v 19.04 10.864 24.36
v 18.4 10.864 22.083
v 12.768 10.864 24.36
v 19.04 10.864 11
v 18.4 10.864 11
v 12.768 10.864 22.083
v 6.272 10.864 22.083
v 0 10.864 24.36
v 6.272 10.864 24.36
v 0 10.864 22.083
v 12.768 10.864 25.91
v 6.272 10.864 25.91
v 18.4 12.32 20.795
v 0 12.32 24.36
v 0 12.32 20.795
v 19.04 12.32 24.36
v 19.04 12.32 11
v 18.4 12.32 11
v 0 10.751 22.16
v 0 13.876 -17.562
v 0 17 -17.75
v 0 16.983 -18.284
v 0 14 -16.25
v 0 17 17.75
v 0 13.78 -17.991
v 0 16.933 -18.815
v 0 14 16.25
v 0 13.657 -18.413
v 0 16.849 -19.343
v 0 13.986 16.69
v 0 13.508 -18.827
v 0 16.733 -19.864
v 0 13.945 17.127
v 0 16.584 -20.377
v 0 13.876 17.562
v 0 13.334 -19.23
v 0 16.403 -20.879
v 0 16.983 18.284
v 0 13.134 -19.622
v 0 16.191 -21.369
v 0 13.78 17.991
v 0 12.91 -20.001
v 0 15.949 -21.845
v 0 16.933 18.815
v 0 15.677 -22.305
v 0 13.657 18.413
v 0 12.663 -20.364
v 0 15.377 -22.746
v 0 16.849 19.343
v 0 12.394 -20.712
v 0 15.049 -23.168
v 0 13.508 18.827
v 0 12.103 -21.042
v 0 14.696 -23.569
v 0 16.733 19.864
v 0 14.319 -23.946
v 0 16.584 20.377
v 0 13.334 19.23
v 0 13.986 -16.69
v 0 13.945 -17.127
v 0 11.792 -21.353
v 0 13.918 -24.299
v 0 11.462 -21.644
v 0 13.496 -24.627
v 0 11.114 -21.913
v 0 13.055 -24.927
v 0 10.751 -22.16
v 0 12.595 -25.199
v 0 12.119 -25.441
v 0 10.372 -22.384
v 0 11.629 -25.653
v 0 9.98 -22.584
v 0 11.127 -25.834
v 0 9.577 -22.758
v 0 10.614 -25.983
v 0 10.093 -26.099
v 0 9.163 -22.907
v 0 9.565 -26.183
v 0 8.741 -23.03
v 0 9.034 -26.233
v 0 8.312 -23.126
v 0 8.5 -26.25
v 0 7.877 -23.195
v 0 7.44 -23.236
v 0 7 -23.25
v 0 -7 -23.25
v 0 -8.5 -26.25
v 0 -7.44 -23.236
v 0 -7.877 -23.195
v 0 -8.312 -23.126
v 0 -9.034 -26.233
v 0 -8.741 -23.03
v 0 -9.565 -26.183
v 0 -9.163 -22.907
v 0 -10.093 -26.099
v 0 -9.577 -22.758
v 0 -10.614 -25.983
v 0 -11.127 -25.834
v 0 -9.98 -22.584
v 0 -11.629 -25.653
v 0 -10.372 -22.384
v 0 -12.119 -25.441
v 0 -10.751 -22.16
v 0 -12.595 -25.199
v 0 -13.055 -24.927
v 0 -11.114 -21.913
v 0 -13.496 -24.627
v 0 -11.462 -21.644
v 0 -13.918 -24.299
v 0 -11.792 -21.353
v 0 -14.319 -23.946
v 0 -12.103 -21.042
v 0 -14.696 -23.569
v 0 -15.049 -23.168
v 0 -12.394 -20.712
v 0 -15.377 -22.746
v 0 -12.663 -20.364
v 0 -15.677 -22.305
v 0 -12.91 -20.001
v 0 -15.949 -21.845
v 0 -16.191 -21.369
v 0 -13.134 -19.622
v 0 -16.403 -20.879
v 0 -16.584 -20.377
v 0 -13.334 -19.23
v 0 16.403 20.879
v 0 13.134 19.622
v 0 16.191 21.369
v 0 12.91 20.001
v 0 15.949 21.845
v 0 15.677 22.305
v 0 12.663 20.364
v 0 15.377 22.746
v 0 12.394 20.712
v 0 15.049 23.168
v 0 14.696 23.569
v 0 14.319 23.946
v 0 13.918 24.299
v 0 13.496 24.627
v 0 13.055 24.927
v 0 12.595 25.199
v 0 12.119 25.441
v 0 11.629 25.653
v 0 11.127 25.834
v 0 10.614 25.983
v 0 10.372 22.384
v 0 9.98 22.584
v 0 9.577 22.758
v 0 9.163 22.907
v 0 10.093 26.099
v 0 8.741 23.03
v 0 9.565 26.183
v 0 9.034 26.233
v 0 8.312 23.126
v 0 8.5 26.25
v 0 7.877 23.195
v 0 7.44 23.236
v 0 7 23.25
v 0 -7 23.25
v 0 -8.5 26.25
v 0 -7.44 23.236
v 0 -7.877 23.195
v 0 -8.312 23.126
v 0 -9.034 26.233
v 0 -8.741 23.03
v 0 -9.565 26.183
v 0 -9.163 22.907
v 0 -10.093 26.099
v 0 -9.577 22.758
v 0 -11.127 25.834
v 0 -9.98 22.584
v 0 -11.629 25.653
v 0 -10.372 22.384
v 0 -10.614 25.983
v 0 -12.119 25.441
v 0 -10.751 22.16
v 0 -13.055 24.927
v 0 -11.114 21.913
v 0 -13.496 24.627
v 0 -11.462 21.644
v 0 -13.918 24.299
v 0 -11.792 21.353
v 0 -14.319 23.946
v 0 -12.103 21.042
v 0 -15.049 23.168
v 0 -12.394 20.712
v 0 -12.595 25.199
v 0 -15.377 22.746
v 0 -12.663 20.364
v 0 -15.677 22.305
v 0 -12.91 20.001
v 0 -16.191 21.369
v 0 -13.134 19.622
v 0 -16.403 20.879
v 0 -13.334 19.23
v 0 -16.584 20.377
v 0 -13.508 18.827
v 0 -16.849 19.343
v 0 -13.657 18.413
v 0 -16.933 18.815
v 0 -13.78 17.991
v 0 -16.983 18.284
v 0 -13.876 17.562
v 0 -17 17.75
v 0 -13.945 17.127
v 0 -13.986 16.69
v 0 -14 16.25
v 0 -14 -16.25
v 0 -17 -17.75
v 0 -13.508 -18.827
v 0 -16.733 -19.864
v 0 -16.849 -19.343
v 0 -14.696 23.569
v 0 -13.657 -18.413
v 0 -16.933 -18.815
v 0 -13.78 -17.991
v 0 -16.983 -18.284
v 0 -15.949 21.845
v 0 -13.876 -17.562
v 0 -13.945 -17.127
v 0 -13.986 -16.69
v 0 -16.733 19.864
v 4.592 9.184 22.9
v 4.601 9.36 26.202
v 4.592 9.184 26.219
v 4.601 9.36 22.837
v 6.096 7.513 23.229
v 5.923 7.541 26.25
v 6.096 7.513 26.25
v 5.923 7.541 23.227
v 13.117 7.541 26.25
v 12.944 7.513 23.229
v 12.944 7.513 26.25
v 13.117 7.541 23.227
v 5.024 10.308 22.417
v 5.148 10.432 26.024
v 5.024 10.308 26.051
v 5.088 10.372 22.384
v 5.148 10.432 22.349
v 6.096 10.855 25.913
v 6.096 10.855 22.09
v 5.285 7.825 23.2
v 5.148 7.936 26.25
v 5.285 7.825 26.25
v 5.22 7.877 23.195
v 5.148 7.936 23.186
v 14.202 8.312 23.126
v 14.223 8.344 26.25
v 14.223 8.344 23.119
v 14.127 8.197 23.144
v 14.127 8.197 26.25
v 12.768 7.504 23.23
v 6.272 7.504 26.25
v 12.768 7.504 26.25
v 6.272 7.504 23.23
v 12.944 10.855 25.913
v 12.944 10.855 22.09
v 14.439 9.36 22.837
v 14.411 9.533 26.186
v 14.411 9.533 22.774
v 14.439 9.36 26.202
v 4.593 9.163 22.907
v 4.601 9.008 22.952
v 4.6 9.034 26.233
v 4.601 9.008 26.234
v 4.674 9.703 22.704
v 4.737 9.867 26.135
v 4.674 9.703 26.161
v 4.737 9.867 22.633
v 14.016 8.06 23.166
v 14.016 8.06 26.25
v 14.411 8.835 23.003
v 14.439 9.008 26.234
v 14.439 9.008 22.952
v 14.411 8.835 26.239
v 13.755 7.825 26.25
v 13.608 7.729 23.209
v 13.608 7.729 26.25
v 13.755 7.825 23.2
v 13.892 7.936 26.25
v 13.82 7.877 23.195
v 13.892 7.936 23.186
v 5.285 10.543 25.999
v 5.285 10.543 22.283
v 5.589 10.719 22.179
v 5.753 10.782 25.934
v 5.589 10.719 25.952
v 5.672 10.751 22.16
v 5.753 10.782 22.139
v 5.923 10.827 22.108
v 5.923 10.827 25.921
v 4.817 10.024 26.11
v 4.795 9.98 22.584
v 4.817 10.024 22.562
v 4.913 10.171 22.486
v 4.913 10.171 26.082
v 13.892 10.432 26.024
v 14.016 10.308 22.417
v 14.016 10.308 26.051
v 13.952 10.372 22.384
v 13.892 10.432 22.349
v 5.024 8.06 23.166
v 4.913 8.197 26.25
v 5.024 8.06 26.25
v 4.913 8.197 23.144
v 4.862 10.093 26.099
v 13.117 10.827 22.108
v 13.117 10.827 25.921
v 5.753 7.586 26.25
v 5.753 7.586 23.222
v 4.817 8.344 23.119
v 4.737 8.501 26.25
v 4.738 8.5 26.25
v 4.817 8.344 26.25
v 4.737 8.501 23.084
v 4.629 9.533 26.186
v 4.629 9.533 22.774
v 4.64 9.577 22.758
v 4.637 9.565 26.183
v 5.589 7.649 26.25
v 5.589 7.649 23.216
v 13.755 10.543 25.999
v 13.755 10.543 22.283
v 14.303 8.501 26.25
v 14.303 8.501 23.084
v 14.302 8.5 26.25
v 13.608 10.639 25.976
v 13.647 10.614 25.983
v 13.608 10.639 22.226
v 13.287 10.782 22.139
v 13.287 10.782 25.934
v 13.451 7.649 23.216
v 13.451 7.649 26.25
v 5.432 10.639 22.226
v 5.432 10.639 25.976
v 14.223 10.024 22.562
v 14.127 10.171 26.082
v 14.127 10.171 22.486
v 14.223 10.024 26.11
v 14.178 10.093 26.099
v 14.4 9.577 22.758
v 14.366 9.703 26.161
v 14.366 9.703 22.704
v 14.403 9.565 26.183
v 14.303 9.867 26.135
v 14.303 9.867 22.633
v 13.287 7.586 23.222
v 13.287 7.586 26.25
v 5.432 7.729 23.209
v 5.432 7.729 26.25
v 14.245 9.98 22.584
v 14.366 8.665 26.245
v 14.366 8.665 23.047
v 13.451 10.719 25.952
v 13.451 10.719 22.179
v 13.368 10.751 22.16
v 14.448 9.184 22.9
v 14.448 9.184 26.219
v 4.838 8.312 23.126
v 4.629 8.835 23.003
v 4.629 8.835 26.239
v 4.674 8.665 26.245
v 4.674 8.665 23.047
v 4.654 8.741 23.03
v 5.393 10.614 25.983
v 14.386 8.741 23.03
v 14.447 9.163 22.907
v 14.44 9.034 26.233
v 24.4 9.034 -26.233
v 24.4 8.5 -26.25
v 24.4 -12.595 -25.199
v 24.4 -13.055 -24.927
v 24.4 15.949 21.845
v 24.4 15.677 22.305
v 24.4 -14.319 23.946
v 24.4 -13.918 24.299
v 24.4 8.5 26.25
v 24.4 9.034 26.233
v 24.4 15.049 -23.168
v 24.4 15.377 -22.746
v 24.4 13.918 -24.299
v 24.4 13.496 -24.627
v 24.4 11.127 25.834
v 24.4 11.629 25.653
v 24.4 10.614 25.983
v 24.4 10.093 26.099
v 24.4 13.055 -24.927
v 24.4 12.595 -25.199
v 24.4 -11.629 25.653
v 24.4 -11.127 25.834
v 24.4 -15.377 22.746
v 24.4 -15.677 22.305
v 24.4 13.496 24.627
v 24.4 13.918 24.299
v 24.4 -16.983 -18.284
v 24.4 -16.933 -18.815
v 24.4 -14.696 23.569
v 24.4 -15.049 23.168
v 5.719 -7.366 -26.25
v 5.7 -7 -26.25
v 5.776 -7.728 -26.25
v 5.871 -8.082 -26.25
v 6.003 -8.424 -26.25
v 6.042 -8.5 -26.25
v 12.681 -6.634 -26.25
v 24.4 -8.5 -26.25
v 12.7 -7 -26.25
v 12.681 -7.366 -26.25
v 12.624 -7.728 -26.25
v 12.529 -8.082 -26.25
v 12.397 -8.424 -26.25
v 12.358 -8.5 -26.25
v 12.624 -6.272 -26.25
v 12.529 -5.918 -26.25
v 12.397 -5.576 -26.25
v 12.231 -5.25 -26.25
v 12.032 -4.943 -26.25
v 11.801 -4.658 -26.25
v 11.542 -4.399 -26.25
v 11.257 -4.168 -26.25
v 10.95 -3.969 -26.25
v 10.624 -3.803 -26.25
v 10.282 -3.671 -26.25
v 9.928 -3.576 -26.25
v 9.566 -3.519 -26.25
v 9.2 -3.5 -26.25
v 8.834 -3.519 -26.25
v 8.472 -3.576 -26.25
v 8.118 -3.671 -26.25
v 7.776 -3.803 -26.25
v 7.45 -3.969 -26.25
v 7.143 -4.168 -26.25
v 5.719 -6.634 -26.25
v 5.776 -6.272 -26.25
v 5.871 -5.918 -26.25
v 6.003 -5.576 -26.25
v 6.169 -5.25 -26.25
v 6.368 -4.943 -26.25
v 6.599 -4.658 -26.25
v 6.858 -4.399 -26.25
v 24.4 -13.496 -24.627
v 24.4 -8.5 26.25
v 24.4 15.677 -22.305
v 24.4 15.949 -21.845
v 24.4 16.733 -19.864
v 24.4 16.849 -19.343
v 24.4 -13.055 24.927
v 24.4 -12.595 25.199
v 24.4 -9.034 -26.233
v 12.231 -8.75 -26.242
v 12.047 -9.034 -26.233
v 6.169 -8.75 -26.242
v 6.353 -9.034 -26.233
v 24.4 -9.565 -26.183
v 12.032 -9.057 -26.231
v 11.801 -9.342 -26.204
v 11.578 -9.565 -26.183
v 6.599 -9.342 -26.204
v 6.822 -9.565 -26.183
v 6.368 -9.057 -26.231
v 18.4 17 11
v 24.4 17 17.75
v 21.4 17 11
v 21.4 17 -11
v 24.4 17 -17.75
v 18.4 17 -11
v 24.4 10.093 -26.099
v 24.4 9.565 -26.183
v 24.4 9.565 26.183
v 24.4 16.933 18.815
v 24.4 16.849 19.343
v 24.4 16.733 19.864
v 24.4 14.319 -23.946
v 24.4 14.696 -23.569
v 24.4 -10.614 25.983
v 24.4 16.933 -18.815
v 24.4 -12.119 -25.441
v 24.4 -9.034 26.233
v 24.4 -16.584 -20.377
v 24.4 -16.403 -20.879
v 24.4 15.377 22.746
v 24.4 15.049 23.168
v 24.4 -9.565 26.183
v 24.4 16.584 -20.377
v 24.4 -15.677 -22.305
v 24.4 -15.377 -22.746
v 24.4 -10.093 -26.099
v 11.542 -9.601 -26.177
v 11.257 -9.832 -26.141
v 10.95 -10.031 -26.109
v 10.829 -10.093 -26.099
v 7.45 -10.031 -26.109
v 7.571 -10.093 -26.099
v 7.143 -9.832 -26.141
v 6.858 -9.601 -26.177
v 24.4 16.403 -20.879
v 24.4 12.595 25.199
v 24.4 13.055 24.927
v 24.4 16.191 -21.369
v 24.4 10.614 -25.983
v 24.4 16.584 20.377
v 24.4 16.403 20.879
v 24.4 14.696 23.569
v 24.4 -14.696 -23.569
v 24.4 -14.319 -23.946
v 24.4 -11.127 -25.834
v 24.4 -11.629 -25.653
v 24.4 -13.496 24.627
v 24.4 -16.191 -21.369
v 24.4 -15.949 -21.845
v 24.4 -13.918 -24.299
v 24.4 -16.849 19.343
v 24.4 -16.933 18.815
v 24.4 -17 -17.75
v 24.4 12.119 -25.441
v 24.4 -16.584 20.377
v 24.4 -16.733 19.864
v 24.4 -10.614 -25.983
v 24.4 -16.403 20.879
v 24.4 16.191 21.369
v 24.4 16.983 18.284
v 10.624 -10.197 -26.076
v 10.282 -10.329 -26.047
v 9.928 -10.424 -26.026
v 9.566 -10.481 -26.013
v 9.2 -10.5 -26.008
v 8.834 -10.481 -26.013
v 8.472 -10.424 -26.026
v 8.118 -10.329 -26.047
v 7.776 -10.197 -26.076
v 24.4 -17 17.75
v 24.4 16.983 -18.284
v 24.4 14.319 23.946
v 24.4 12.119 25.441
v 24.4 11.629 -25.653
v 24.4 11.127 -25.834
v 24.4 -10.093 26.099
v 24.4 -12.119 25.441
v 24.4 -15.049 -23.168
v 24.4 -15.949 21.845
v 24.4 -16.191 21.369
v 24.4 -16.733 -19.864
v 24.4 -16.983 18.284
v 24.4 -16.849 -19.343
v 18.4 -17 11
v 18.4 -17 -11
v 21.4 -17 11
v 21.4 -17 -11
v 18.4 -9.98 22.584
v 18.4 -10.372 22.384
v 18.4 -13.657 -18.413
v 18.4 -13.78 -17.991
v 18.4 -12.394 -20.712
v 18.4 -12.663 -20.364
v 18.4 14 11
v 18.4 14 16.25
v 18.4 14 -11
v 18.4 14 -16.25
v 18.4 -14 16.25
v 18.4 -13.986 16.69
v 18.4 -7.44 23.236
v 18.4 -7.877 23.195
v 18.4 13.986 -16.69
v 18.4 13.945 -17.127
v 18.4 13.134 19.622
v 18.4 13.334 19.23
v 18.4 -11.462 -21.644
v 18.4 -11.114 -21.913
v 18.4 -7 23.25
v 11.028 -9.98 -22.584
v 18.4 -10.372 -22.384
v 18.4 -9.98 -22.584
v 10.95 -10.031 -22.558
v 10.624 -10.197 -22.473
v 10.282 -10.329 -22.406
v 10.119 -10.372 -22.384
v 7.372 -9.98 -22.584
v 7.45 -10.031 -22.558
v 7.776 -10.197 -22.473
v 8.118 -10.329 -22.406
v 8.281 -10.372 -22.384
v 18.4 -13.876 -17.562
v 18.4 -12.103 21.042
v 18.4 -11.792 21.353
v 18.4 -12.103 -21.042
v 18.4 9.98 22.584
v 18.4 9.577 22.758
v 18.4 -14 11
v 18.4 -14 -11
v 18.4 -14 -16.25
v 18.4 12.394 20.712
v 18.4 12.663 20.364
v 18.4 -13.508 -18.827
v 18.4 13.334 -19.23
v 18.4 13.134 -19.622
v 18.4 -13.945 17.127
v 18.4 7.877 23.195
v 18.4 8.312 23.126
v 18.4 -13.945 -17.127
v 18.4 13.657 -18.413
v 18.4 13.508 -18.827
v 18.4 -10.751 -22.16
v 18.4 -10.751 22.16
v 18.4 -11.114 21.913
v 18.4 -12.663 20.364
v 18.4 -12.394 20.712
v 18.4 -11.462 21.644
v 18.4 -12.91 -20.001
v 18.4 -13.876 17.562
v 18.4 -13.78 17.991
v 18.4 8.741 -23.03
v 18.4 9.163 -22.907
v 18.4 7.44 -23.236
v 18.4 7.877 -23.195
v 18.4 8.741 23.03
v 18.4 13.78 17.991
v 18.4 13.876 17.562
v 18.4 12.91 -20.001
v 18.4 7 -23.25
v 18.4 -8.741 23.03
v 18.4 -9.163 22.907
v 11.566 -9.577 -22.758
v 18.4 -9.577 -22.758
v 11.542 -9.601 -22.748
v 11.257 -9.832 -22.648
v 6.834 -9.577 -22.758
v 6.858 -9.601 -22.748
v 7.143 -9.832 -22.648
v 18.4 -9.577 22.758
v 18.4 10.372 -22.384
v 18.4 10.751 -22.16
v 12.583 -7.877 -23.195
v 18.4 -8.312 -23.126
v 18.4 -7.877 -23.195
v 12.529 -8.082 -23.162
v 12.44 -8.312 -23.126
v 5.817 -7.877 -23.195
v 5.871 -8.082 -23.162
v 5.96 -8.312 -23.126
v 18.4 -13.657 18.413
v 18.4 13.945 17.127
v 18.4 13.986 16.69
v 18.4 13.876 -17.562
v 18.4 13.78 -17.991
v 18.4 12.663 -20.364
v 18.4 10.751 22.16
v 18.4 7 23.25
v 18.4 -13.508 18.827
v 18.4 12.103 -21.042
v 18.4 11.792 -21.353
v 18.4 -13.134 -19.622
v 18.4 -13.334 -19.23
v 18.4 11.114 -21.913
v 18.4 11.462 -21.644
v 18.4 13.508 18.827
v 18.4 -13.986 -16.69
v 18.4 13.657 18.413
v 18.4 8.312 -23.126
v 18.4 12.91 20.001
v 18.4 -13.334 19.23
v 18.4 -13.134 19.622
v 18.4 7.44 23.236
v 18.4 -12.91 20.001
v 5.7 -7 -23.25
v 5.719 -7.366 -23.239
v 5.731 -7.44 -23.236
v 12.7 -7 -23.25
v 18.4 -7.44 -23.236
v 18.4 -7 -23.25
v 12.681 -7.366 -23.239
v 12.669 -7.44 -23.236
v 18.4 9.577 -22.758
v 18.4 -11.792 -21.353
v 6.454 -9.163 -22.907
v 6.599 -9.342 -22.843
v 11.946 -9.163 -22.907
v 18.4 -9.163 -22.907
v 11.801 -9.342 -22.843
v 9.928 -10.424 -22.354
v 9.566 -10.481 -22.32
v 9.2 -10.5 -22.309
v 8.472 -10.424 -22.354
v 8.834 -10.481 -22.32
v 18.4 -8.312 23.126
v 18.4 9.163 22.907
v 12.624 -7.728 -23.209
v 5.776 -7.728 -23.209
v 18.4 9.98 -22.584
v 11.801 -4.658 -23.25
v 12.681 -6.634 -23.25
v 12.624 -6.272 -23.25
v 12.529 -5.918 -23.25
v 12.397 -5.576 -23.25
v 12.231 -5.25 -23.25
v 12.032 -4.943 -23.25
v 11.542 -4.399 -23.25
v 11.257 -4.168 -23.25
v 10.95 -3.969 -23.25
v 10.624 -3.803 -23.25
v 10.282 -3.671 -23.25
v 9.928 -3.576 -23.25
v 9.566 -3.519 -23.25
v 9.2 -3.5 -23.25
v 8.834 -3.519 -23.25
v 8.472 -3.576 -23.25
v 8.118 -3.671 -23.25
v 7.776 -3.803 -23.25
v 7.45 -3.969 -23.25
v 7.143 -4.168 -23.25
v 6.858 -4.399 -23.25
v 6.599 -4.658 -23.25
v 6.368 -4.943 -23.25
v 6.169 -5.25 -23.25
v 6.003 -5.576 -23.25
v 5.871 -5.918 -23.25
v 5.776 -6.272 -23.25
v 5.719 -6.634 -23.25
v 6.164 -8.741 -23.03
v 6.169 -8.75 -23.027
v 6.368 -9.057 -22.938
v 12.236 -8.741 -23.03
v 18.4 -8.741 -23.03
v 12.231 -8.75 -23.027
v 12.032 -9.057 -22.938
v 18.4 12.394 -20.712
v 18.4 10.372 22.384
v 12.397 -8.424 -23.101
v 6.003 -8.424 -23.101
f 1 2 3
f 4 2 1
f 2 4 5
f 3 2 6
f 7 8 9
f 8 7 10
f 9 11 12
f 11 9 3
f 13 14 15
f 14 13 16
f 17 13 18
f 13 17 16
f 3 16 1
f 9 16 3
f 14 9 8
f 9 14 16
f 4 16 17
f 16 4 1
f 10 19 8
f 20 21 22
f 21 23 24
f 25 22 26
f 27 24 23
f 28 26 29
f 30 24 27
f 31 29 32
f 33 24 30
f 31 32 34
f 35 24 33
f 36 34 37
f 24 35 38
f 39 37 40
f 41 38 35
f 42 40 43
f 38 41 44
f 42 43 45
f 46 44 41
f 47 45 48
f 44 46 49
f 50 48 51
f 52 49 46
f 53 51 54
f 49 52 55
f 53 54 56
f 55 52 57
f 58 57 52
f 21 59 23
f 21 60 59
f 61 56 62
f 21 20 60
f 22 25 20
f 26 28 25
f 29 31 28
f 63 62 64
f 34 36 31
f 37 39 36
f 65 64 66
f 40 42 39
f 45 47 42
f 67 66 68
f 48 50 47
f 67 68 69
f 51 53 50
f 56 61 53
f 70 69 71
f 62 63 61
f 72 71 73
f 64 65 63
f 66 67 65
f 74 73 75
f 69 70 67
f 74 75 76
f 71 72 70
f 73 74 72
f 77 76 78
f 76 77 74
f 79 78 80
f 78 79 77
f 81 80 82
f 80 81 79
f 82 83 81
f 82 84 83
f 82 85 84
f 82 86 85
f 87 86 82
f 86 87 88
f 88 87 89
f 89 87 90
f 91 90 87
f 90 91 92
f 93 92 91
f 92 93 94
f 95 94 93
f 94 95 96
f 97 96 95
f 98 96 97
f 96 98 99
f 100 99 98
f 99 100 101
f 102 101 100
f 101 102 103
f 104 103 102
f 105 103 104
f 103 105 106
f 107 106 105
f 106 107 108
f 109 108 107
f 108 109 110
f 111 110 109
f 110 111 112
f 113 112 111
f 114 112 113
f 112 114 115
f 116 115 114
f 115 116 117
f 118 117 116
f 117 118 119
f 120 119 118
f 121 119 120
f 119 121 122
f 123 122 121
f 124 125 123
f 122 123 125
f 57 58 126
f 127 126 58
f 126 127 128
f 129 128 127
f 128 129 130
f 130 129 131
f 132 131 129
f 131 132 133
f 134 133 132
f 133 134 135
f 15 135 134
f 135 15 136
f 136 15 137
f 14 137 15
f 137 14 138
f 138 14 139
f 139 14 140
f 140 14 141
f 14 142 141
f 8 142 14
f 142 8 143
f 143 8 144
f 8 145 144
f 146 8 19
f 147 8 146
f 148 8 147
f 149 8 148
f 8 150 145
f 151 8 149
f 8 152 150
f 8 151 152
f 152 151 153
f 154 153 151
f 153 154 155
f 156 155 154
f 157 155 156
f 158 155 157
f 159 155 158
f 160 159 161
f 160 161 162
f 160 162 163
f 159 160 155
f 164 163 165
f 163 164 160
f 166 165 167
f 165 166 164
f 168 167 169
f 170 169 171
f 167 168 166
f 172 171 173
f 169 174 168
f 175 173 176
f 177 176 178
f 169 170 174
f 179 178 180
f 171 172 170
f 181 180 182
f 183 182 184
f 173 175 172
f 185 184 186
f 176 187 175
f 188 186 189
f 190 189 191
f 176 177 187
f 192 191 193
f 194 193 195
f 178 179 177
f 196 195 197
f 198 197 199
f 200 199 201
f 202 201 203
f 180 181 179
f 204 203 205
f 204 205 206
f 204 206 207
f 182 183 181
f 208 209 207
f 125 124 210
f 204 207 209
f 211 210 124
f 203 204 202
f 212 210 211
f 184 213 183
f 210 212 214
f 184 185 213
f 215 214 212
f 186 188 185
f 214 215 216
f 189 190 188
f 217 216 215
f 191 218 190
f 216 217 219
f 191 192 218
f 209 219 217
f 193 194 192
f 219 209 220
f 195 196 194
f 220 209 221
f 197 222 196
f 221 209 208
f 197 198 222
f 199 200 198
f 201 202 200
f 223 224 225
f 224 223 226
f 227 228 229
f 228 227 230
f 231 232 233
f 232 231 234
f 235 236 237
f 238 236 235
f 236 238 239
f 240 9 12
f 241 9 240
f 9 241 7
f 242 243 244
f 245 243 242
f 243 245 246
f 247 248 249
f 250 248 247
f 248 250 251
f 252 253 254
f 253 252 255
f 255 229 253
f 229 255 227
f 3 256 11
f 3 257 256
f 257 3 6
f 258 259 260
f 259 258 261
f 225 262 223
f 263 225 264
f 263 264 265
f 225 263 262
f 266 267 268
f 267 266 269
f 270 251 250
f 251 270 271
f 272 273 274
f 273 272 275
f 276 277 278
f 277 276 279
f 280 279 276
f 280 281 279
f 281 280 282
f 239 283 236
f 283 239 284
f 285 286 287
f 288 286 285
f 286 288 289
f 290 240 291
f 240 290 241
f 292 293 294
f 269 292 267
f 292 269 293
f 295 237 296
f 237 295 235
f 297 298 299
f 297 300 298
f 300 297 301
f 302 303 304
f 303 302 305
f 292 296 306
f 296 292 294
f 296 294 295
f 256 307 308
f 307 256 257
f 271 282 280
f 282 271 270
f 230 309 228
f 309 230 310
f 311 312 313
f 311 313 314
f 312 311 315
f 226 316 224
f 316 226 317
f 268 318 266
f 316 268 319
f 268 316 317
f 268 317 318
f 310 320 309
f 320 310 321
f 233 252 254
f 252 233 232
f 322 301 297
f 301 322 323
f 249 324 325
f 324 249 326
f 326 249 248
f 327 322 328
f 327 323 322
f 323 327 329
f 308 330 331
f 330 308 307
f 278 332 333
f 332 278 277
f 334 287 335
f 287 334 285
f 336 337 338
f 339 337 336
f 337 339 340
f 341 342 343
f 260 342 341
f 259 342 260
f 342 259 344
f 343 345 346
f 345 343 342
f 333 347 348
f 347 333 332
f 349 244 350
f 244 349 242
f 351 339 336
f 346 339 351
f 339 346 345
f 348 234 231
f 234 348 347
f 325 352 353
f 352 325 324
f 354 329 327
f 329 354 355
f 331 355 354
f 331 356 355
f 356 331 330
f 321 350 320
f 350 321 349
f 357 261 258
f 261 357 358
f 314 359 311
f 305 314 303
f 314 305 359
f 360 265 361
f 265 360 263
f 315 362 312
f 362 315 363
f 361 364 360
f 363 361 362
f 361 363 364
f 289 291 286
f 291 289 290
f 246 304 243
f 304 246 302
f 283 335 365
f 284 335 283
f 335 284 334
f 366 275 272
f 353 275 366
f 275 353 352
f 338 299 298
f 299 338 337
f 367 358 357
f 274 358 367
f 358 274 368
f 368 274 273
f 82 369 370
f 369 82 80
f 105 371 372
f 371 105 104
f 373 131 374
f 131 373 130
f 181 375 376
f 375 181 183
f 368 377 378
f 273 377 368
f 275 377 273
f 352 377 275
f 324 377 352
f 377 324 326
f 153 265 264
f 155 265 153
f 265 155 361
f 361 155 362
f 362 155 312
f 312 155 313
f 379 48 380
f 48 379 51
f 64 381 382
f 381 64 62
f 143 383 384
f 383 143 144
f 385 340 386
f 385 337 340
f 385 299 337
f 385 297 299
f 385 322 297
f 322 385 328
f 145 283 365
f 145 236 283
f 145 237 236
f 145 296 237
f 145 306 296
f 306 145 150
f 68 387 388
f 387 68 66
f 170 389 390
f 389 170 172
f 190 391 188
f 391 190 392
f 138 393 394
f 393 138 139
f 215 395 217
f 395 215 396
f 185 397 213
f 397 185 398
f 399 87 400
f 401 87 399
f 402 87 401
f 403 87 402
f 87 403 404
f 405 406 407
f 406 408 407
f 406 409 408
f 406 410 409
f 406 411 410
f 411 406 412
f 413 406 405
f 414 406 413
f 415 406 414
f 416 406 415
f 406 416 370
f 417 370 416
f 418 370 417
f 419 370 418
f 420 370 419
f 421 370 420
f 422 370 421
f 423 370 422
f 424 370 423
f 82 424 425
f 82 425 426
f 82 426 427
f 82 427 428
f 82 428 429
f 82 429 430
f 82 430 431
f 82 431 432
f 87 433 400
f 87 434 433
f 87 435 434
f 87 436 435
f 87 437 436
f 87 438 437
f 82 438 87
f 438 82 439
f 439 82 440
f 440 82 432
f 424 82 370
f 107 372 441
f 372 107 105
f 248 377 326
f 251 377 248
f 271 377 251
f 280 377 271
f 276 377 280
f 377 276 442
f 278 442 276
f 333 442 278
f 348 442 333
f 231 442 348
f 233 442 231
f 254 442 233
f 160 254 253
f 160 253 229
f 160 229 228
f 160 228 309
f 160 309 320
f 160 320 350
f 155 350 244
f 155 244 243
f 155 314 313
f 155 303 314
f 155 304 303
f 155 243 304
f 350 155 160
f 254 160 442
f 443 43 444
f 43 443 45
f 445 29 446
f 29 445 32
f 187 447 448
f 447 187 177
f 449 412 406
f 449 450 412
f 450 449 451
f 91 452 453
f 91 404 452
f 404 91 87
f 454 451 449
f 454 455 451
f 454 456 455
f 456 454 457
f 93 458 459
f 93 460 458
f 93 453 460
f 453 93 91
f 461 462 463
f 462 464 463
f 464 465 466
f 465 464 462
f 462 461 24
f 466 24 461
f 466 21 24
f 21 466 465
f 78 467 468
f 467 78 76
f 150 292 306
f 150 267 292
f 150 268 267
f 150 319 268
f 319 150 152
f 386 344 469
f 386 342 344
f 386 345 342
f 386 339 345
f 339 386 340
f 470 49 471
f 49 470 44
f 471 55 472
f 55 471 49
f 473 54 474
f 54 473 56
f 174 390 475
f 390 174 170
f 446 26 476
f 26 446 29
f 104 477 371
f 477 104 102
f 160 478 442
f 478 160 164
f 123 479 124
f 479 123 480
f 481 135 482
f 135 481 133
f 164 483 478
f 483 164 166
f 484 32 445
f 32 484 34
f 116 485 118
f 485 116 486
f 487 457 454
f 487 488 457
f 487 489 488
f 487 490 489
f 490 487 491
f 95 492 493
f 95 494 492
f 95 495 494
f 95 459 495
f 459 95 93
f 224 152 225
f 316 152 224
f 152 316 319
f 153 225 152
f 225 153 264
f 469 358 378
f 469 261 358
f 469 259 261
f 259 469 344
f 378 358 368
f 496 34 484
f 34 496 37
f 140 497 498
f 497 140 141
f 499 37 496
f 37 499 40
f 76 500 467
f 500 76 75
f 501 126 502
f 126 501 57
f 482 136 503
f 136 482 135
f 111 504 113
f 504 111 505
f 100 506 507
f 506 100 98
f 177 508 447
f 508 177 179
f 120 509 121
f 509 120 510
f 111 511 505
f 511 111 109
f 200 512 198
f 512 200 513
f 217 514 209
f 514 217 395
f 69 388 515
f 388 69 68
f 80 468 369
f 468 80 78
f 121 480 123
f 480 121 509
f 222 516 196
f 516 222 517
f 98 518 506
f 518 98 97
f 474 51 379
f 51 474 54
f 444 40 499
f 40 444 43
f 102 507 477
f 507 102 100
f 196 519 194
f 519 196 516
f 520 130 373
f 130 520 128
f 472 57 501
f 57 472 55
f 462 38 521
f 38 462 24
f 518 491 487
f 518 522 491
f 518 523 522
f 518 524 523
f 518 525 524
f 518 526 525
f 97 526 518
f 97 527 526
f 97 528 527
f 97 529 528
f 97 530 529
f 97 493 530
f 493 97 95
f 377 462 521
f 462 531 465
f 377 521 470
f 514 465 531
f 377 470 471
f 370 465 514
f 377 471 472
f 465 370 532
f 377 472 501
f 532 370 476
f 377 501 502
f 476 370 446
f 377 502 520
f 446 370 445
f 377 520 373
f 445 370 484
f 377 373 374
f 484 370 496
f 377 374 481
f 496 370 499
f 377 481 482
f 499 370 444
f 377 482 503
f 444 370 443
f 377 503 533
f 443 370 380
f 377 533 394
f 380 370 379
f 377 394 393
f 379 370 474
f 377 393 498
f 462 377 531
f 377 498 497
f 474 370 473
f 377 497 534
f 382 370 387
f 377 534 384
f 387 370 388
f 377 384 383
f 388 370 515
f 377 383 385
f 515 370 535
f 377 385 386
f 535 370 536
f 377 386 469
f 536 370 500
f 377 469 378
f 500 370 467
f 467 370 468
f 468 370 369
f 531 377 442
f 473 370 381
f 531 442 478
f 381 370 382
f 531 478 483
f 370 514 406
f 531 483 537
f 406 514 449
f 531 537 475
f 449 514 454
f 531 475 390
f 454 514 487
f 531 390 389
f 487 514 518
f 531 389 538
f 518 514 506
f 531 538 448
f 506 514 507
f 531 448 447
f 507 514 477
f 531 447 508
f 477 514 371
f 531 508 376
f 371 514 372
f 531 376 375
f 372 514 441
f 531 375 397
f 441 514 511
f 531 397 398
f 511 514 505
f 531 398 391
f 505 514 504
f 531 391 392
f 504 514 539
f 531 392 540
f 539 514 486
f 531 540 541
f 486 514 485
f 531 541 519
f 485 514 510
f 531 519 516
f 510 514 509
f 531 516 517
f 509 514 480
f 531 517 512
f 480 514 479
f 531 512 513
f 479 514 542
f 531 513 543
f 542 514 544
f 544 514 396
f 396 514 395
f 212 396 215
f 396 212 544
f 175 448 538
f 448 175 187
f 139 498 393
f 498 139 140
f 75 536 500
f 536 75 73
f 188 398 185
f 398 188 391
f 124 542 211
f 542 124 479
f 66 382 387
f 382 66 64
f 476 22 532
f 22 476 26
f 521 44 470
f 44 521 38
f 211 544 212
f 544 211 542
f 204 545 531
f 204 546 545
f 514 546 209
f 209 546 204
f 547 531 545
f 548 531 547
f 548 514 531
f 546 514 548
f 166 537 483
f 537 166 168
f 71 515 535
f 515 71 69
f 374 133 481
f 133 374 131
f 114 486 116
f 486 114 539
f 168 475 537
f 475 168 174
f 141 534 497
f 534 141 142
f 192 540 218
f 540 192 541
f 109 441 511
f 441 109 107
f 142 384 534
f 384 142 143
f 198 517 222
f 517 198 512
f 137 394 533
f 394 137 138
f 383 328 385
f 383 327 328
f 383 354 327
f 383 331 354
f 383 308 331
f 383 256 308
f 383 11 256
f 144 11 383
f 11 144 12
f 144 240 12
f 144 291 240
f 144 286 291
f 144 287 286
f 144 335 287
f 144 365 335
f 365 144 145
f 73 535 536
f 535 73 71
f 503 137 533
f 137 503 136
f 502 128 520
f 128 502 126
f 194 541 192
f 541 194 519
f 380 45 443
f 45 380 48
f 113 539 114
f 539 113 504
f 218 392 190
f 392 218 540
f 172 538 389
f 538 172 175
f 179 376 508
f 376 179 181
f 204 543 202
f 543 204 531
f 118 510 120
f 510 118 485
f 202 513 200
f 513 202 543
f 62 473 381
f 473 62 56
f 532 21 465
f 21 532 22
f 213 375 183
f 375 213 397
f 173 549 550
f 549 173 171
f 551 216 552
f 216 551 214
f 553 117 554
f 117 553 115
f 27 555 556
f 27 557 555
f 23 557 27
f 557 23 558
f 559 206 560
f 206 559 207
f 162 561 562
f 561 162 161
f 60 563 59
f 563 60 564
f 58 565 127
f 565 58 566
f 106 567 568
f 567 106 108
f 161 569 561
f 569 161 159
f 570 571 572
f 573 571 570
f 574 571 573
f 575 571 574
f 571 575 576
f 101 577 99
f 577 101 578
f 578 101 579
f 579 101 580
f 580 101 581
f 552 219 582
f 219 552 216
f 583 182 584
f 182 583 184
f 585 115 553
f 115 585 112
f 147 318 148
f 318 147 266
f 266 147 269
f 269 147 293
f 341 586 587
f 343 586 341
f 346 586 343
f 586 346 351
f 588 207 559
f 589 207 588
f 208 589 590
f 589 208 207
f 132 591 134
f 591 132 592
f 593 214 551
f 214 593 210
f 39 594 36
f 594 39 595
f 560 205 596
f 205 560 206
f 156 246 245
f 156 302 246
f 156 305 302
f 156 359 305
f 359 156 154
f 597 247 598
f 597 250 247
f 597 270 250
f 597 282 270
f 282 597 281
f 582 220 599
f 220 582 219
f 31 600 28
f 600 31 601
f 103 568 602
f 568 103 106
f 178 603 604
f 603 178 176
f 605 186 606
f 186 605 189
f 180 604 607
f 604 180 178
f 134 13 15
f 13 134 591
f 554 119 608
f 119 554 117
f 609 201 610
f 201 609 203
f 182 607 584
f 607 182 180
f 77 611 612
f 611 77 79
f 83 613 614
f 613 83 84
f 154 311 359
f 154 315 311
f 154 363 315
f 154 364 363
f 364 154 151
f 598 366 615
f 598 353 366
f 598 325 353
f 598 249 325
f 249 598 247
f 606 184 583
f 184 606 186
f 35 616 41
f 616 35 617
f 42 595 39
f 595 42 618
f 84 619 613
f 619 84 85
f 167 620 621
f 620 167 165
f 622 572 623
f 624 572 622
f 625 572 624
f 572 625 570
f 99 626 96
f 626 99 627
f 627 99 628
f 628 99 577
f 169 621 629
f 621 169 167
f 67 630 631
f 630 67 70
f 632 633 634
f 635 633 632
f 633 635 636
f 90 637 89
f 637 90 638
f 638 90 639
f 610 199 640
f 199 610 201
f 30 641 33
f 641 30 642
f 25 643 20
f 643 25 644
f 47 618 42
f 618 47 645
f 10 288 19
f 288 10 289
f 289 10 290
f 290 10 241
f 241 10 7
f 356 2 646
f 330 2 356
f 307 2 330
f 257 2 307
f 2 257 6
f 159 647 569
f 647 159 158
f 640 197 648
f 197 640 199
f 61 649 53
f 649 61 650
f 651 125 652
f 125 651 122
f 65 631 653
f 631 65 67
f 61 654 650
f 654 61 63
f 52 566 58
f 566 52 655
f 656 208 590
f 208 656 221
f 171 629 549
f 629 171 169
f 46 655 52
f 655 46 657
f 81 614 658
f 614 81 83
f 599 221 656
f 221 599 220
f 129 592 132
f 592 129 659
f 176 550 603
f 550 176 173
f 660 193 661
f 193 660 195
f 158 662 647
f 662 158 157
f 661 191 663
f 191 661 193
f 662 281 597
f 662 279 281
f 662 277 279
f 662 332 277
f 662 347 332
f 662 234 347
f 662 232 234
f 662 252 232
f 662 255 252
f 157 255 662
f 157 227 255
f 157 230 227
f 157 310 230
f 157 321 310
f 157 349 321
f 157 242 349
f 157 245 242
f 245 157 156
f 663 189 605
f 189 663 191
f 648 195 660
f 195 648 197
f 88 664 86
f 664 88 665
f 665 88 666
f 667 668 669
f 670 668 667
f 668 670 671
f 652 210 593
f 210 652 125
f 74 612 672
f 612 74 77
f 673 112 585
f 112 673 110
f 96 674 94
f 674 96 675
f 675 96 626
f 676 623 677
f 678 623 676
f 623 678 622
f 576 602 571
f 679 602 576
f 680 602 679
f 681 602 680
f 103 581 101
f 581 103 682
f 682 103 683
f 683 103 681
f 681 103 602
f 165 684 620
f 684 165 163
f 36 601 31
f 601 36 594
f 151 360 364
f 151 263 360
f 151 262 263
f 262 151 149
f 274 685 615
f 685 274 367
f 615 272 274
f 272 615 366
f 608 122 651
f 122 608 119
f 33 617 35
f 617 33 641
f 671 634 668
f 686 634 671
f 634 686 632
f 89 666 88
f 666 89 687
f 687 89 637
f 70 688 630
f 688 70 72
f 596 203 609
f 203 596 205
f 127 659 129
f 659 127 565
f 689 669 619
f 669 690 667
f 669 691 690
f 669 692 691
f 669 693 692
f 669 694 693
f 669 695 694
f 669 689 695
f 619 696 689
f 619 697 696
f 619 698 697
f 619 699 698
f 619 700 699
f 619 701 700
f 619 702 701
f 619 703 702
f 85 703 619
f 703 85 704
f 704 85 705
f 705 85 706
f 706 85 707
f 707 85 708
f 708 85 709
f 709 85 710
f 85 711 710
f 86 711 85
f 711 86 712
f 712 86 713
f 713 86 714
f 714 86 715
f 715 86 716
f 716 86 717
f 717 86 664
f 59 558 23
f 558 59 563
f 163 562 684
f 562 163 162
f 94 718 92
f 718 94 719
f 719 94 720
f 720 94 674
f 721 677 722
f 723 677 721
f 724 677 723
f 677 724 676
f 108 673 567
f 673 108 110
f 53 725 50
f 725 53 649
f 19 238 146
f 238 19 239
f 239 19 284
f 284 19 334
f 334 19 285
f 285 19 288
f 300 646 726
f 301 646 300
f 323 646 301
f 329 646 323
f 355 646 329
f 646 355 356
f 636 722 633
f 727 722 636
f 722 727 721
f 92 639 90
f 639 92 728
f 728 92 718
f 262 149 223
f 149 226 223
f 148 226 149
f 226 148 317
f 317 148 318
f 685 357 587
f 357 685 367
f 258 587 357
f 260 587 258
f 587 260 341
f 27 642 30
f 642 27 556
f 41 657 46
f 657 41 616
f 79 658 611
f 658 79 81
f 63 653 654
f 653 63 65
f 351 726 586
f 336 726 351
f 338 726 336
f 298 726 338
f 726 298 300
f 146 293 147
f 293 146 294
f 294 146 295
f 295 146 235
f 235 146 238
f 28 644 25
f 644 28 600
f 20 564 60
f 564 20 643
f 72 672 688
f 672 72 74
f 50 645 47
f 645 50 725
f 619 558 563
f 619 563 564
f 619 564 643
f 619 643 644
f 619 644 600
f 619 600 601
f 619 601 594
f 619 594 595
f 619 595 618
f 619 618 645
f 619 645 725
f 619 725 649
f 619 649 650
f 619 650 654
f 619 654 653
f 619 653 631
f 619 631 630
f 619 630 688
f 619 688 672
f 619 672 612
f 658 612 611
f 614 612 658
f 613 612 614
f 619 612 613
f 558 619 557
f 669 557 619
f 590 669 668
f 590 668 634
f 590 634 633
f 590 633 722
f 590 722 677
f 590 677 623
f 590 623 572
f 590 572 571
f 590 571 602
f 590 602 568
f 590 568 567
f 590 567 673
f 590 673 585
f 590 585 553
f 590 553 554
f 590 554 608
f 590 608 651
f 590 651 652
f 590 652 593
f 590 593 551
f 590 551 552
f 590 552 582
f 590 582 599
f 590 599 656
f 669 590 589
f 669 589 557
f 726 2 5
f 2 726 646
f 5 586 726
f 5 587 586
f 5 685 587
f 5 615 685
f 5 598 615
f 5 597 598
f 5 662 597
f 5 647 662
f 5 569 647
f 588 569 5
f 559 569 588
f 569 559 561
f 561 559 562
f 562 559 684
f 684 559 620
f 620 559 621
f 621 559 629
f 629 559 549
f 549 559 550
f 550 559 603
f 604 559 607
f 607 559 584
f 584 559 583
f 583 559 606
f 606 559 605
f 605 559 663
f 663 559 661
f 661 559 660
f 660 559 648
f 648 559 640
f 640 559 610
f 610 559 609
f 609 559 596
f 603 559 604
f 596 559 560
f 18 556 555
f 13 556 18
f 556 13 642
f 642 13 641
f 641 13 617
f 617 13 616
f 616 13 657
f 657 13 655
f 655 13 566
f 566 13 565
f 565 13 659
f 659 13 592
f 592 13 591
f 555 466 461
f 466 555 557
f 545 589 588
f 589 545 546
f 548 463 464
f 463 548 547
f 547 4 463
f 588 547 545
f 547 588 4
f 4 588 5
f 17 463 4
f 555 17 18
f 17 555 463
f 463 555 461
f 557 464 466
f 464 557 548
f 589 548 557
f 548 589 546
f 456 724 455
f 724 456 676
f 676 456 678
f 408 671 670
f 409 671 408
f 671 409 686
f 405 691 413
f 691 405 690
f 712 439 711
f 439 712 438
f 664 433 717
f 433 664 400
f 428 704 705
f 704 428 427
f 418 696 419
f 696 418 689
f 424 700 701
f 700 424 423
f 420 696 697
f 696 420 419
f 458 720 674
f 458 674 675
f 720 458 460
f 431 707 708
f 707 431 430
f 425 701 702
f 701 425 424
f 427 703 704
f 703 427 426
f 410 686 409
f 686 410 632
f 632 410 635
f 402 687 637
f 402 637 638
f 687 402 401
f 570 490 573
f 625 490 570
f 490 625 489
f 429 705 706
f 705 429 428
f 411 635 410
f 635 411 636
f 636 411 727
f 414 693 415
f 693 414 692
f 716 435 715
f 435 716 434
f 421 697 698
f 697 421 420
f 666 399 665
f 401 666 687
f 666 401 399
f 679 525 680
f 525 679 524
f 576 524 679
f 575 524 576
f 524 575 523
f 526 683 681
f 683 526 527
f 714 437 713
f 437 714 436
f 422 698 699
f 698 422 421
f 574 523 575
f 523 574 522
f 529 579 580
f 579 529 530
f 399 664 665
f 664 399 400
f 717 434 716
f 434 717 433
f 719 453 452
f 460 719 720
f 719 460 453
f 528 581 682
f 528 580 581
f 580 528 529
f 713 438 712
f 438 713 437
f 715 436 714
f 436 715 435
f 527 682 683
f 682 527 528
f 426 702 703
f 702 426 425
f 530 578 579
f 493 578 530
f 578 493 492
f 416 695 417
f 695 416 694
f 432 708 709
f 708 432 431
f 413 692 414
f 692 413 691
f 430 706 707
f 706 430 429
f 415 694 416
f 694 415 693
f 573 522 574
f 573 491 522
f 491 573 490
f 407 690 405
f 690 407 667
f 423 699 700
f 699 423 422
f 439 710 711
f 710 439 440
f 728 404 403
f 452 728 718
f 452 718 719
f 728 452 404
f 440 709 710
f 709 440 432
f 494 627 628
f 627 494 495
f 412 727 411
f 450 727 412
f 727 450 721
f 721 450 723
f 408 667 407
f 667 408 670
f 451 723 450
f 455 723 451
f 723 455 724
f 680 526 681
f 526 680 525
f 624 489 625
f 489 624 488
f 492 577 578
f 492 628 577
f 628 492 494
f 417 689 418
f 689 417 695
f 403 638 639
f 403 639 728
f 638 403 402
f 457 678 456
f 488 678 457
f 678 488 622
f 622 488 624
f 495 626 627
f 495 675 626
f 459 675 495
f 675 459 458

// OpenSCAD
// file: ../../Household/references.scad
// Size
//Naming
// _PT = printable
// _ES = exact size
// _IS = insertable with force but no gaps

//--------------threaded rod  (TR)

//----M5

TR_M5_Diameter_ES = 5.8;
//for a hole 
TR_M5_Diamater_IS = 6;
TR_M5_Diamater_PT = 7;


//----M10

TR_M10_Diameter_ES = 9.6;
//for a hole 
TR_M10_Diamater_IS = 10;
TR_M10_Diamater_PT = 12;

//--------------Screw (SC)
//----M3

module body_M3(height_input){
    cylinder(d=SC_M3_Diameter_PT,h=height_input,$fn=60);
    
    }
    
SC_M3_Diameter_ES = 2.96;
SC_M3_Head_Diameter_ES = 5.90;
SC_M3_Head_Height_ES = 2.32;
//for a hole 
SC_M3_Diameter_PT = 4; 


//----M5

SC_M5_Diameter_ES = 4.86;
SC_M5_Head_Diameter_ES = 9.24;
SC_M5_Head_Height_ES = 3.0;
//for a hole 
SC_M5_Diamater_IS = 5;
SC_M5_Diamater_PT = 0; //inconnu pour le moment


//--------------Nut Bolt (NB)

module nut_M3(height_input){
    cylinder(d=NB_M3_Diameter_C2C_PT,h=height_input,$fn=6);
    
    }

//----M3
// Side to side = from 2 paralelle faces S2S
// corner to corner = from 2 corners C2C


NB_M3_Diameter_S2S_ES = 5.30;
NB_M3_Diameter_C2C_ES = 6.0;

NB_M3_Diameter_S2S_PT = 6.30; //reducing as well
NB_M3_Diameter_C2C_PT = 7.0; //8.0 was too much 


//--------------Zip ties (ZT)

//Big zip ties I got    

ZT_length_ES = 300;
ZT_width_ES = 4.8;
ZT_height_ES = 1;

ZT_width_PT = 7;
ZT_height_PT = 3;

//--------------Velcro tape (VT)



VT_length_ES = 300;
VT_width_ES = 20;
VT_height_ES = 1;

VT_width_PT = 22;
VT_height_PT = 3;



//--------------Switch (SW)
//switch from castorama 
SW_length_ES = 13;
SW_width_ES = 8;
SW_height_ES = 14;

SW_length_PT = 15;
SW_width_PT = 10;
SW_height_PT = 16;


//switch from aliexpress
SW_AL_tube_width_ES = 5.7;
SW_AL_tube_width_PT = 7;

module custom_cylinder_switch(translated_position_X, translated_position_Y,translated_position_Z,heigh_input) {
    translate([translated_position_X, translated_position_Y, translated_position_Z]){ 
        rotate([90,0,0]){
            cylinder(d=SW_AL_tube_width_PT, h=heigh_input, $fn=30);
        }
    }
}
module custom_cylinder(rotate_input,translate_input,diameter_object,height_object){
    translate(translate_input){
        rotate(rotate_input){
            cylinder(d=diameter_object,h=height_object,$fn=60);
        }
    }
}

//--------------generic connectors (GC)
// USB C (USB-C)
GC_USB_C_length_ES = 7.3;
GC_USB_C_width_ES = 8.8;
GC_USB_C_height_ES = 3;

module USB_C(rotate_input,translate_input){
    translate(translate_input){
    rotate(rotate_input){
        hull(){
    cylinder(d=GC_USB_C_height_ES,h=GC_USB_C_length_ES,$fn=60);
translate([0,GC_USB_C_width_ES-GC_USB_C_height_ES,0]){
    cylinder(d=GC_USB_C_height_ES,h=GC_USB_C_length_ES,$fn=60);
}
}
    }
}
}

//--------------battery from vapes (BV)

//vapes crystal pro battery (CP)
BV_CP_length_ES = 34;
BV_CP_width_ES = 20;
BV_CP_height_ES = BV_CP_width_ES; //(because it's a cylinder)

BV_CP_length_PT = 37;
BV_CP_width_PT = 22;
BV_CP_height_PT = BV_CP_width_ES; //(because it's a cylinder)

//dimension list [legnth, width, height]
//BV_CP_PT=[37,22,22];
BV_CP_PT=[BV_CP_length_PT,BV_CP_width_PT,BV_CP_height_PT];

module vapes_battery(input_list,rotate_input,translate_input){
translate(translate_input){
    rotate(rotate_input){
        color("green")cylinder(d=input_list[1],h=input_list[0],$fn=60);
    }
    }
}


//--------------battery charger (BC)
//Board Charger TP4056 Module  (TP)

//https://www.az-delivery.uk/cdn/shop/products/tp4056-batterieladungsmodul-usb-typ-c-schutzschaltung-led-anzeigen-fur-ihre-li-ion-oder-lipo-einzelzellenbatterien-126337.jpg?v=1694708173


BC_TP_length_ES = 28;
BC_TP_full_length_ES = 28; //usb C end included
BC_TP_width_ES = 17;
BC_TP_height_ES = 1.3; //without USB C
BC_TP_full_height_ES = 5; //with USB C



//usb C connector position
BC_TP_width_from_side_ES = 8.44;//center of USB C connector from bottom (view from the top )
BC_TP_height_from_bottom_ES = 3.4;//center of USB C connector from bottom (view from the top )
BC_TP_negative_length_ES = 2;//center of USB C connector from bottom 

module battery_charger(rotate_input,translate_input){
    translate(translate_input){
    rotate(rotate_input){
        color("green"){
            cube([BC_TP_full_length_ES,BC_TP_width_ES,BC_TP_height_ES]);

                rotate_array_USB_C=[0,90,0];
    translate_array_USB_C=[-BC_TP_negative_length_ES,BC_TP_width_ES/2-(GC_USB_C_width_ES-GC_USB_C_height_ES)/2,GC_USB_C_height_ES/2+BC_TP_height_ES];
    
    USB_C(rotate_array_USB_C,translate_array_USB_C);

            
            }
    }
}
    
    }


//https://www.alectrofag.co.uk/cdn/shop/files/Hayati_Pro_Max_4000_Puffs_Disposable_Vape.jpg?v=1725012272




//https://d138zd1ktt9iqe.cloudfront.net/media/seo_landing_files/length-width-height-01-1646654708.png
// main file
include <../../Household/references.scad>

// Define variables for the dimensions and hole positions in millimeters


length_object = 18.4;   //X
width_object = 28;    //Y
height_object = 46.5;  //Z

wall_thickness = 3;

length_perimeter = length_object + (wall_thickness*2);
width_perimeter = width_object +(wall_thickness*2);
height_perimeter = height_object +(wall_thickness*2);


module hole_for_lamp(length_parametric,width_parametric,height_parametric){
radius_circles_corner_parametric = (width_parametric/4);
    hull(){
        translate([0,(width_parametric/2)-radius_circles_corner_parametric,(height_parametric/2)-radius_circles_corner_parametric]){
            rotate([0,90,0]){
                color("green")cylinder(h=length_parametric, d=width_parametric/2 , $fn=100);
            }
        }
        translate([0,-(width_parametric/2)+radius_circles_corner_parametric,(height_parametric/2)-radius_circles_corner_parametric]){
            rotate([0,90,0]){
                color("green")cylinder(h=length_parametric, d=width_parametric/2 , $fn=100);
            }
        }
        translate([0,(width_parametric/2)-radius_circles_corner_parametric,-(height_parametric/2)+radius_circles_corner_parametric]){
            rotate([0,90,0]){
                color("green")cylinder(h=length_parametric, d=width_parametric/2 , $fn=100);
            }
        }
        translate([0,-(width_parametric/2)+radius_circles_corner_parametric,-(height_parametric/2)+radius_circles_corner_parametric]){
            rotate([0,90,0]){
                color("green")cylinder(h=length_parametric, d=width_parametric/2 , $fn=100);
            }
        }
    }
                rotate_array_battery_charger=[90,90,0];
    translate_array_battery_charger=[0,width_object/2-3,height_object/2-1.5];
    scale([1.12,1.12,1.12]){
        battery_charger(rotate_array_battery_charger,translate_array_battery_charger);
    }


}

difference() {
    hole_for_lamp(length_parametric=length_perimeter,width_parametric=width_perimeter,height_parametric=height_perimeter);
    hole_for_lamp(length_parametric=length_object,width_parametric=width_object,height_parametric=height_object);


    translate([length_object,-(width_perimeter)/2,-VT_width_PT/2]){
       
           color("red")cube([VT_height_PT,width_perimeter,VT_width_PT]);
           }
           
           
               rotate_array_switch=[0,180,0];
    translate_array_switch=[length_object/2,-width_object/4,-height_object/2+3];
    custom_cylinder(rotate_input=rotate_array_switch,translate_input=translate_array_switch,diameter_object=SW_AL_tube_width_PT,height_object=wall_thickness+3);
}
  
